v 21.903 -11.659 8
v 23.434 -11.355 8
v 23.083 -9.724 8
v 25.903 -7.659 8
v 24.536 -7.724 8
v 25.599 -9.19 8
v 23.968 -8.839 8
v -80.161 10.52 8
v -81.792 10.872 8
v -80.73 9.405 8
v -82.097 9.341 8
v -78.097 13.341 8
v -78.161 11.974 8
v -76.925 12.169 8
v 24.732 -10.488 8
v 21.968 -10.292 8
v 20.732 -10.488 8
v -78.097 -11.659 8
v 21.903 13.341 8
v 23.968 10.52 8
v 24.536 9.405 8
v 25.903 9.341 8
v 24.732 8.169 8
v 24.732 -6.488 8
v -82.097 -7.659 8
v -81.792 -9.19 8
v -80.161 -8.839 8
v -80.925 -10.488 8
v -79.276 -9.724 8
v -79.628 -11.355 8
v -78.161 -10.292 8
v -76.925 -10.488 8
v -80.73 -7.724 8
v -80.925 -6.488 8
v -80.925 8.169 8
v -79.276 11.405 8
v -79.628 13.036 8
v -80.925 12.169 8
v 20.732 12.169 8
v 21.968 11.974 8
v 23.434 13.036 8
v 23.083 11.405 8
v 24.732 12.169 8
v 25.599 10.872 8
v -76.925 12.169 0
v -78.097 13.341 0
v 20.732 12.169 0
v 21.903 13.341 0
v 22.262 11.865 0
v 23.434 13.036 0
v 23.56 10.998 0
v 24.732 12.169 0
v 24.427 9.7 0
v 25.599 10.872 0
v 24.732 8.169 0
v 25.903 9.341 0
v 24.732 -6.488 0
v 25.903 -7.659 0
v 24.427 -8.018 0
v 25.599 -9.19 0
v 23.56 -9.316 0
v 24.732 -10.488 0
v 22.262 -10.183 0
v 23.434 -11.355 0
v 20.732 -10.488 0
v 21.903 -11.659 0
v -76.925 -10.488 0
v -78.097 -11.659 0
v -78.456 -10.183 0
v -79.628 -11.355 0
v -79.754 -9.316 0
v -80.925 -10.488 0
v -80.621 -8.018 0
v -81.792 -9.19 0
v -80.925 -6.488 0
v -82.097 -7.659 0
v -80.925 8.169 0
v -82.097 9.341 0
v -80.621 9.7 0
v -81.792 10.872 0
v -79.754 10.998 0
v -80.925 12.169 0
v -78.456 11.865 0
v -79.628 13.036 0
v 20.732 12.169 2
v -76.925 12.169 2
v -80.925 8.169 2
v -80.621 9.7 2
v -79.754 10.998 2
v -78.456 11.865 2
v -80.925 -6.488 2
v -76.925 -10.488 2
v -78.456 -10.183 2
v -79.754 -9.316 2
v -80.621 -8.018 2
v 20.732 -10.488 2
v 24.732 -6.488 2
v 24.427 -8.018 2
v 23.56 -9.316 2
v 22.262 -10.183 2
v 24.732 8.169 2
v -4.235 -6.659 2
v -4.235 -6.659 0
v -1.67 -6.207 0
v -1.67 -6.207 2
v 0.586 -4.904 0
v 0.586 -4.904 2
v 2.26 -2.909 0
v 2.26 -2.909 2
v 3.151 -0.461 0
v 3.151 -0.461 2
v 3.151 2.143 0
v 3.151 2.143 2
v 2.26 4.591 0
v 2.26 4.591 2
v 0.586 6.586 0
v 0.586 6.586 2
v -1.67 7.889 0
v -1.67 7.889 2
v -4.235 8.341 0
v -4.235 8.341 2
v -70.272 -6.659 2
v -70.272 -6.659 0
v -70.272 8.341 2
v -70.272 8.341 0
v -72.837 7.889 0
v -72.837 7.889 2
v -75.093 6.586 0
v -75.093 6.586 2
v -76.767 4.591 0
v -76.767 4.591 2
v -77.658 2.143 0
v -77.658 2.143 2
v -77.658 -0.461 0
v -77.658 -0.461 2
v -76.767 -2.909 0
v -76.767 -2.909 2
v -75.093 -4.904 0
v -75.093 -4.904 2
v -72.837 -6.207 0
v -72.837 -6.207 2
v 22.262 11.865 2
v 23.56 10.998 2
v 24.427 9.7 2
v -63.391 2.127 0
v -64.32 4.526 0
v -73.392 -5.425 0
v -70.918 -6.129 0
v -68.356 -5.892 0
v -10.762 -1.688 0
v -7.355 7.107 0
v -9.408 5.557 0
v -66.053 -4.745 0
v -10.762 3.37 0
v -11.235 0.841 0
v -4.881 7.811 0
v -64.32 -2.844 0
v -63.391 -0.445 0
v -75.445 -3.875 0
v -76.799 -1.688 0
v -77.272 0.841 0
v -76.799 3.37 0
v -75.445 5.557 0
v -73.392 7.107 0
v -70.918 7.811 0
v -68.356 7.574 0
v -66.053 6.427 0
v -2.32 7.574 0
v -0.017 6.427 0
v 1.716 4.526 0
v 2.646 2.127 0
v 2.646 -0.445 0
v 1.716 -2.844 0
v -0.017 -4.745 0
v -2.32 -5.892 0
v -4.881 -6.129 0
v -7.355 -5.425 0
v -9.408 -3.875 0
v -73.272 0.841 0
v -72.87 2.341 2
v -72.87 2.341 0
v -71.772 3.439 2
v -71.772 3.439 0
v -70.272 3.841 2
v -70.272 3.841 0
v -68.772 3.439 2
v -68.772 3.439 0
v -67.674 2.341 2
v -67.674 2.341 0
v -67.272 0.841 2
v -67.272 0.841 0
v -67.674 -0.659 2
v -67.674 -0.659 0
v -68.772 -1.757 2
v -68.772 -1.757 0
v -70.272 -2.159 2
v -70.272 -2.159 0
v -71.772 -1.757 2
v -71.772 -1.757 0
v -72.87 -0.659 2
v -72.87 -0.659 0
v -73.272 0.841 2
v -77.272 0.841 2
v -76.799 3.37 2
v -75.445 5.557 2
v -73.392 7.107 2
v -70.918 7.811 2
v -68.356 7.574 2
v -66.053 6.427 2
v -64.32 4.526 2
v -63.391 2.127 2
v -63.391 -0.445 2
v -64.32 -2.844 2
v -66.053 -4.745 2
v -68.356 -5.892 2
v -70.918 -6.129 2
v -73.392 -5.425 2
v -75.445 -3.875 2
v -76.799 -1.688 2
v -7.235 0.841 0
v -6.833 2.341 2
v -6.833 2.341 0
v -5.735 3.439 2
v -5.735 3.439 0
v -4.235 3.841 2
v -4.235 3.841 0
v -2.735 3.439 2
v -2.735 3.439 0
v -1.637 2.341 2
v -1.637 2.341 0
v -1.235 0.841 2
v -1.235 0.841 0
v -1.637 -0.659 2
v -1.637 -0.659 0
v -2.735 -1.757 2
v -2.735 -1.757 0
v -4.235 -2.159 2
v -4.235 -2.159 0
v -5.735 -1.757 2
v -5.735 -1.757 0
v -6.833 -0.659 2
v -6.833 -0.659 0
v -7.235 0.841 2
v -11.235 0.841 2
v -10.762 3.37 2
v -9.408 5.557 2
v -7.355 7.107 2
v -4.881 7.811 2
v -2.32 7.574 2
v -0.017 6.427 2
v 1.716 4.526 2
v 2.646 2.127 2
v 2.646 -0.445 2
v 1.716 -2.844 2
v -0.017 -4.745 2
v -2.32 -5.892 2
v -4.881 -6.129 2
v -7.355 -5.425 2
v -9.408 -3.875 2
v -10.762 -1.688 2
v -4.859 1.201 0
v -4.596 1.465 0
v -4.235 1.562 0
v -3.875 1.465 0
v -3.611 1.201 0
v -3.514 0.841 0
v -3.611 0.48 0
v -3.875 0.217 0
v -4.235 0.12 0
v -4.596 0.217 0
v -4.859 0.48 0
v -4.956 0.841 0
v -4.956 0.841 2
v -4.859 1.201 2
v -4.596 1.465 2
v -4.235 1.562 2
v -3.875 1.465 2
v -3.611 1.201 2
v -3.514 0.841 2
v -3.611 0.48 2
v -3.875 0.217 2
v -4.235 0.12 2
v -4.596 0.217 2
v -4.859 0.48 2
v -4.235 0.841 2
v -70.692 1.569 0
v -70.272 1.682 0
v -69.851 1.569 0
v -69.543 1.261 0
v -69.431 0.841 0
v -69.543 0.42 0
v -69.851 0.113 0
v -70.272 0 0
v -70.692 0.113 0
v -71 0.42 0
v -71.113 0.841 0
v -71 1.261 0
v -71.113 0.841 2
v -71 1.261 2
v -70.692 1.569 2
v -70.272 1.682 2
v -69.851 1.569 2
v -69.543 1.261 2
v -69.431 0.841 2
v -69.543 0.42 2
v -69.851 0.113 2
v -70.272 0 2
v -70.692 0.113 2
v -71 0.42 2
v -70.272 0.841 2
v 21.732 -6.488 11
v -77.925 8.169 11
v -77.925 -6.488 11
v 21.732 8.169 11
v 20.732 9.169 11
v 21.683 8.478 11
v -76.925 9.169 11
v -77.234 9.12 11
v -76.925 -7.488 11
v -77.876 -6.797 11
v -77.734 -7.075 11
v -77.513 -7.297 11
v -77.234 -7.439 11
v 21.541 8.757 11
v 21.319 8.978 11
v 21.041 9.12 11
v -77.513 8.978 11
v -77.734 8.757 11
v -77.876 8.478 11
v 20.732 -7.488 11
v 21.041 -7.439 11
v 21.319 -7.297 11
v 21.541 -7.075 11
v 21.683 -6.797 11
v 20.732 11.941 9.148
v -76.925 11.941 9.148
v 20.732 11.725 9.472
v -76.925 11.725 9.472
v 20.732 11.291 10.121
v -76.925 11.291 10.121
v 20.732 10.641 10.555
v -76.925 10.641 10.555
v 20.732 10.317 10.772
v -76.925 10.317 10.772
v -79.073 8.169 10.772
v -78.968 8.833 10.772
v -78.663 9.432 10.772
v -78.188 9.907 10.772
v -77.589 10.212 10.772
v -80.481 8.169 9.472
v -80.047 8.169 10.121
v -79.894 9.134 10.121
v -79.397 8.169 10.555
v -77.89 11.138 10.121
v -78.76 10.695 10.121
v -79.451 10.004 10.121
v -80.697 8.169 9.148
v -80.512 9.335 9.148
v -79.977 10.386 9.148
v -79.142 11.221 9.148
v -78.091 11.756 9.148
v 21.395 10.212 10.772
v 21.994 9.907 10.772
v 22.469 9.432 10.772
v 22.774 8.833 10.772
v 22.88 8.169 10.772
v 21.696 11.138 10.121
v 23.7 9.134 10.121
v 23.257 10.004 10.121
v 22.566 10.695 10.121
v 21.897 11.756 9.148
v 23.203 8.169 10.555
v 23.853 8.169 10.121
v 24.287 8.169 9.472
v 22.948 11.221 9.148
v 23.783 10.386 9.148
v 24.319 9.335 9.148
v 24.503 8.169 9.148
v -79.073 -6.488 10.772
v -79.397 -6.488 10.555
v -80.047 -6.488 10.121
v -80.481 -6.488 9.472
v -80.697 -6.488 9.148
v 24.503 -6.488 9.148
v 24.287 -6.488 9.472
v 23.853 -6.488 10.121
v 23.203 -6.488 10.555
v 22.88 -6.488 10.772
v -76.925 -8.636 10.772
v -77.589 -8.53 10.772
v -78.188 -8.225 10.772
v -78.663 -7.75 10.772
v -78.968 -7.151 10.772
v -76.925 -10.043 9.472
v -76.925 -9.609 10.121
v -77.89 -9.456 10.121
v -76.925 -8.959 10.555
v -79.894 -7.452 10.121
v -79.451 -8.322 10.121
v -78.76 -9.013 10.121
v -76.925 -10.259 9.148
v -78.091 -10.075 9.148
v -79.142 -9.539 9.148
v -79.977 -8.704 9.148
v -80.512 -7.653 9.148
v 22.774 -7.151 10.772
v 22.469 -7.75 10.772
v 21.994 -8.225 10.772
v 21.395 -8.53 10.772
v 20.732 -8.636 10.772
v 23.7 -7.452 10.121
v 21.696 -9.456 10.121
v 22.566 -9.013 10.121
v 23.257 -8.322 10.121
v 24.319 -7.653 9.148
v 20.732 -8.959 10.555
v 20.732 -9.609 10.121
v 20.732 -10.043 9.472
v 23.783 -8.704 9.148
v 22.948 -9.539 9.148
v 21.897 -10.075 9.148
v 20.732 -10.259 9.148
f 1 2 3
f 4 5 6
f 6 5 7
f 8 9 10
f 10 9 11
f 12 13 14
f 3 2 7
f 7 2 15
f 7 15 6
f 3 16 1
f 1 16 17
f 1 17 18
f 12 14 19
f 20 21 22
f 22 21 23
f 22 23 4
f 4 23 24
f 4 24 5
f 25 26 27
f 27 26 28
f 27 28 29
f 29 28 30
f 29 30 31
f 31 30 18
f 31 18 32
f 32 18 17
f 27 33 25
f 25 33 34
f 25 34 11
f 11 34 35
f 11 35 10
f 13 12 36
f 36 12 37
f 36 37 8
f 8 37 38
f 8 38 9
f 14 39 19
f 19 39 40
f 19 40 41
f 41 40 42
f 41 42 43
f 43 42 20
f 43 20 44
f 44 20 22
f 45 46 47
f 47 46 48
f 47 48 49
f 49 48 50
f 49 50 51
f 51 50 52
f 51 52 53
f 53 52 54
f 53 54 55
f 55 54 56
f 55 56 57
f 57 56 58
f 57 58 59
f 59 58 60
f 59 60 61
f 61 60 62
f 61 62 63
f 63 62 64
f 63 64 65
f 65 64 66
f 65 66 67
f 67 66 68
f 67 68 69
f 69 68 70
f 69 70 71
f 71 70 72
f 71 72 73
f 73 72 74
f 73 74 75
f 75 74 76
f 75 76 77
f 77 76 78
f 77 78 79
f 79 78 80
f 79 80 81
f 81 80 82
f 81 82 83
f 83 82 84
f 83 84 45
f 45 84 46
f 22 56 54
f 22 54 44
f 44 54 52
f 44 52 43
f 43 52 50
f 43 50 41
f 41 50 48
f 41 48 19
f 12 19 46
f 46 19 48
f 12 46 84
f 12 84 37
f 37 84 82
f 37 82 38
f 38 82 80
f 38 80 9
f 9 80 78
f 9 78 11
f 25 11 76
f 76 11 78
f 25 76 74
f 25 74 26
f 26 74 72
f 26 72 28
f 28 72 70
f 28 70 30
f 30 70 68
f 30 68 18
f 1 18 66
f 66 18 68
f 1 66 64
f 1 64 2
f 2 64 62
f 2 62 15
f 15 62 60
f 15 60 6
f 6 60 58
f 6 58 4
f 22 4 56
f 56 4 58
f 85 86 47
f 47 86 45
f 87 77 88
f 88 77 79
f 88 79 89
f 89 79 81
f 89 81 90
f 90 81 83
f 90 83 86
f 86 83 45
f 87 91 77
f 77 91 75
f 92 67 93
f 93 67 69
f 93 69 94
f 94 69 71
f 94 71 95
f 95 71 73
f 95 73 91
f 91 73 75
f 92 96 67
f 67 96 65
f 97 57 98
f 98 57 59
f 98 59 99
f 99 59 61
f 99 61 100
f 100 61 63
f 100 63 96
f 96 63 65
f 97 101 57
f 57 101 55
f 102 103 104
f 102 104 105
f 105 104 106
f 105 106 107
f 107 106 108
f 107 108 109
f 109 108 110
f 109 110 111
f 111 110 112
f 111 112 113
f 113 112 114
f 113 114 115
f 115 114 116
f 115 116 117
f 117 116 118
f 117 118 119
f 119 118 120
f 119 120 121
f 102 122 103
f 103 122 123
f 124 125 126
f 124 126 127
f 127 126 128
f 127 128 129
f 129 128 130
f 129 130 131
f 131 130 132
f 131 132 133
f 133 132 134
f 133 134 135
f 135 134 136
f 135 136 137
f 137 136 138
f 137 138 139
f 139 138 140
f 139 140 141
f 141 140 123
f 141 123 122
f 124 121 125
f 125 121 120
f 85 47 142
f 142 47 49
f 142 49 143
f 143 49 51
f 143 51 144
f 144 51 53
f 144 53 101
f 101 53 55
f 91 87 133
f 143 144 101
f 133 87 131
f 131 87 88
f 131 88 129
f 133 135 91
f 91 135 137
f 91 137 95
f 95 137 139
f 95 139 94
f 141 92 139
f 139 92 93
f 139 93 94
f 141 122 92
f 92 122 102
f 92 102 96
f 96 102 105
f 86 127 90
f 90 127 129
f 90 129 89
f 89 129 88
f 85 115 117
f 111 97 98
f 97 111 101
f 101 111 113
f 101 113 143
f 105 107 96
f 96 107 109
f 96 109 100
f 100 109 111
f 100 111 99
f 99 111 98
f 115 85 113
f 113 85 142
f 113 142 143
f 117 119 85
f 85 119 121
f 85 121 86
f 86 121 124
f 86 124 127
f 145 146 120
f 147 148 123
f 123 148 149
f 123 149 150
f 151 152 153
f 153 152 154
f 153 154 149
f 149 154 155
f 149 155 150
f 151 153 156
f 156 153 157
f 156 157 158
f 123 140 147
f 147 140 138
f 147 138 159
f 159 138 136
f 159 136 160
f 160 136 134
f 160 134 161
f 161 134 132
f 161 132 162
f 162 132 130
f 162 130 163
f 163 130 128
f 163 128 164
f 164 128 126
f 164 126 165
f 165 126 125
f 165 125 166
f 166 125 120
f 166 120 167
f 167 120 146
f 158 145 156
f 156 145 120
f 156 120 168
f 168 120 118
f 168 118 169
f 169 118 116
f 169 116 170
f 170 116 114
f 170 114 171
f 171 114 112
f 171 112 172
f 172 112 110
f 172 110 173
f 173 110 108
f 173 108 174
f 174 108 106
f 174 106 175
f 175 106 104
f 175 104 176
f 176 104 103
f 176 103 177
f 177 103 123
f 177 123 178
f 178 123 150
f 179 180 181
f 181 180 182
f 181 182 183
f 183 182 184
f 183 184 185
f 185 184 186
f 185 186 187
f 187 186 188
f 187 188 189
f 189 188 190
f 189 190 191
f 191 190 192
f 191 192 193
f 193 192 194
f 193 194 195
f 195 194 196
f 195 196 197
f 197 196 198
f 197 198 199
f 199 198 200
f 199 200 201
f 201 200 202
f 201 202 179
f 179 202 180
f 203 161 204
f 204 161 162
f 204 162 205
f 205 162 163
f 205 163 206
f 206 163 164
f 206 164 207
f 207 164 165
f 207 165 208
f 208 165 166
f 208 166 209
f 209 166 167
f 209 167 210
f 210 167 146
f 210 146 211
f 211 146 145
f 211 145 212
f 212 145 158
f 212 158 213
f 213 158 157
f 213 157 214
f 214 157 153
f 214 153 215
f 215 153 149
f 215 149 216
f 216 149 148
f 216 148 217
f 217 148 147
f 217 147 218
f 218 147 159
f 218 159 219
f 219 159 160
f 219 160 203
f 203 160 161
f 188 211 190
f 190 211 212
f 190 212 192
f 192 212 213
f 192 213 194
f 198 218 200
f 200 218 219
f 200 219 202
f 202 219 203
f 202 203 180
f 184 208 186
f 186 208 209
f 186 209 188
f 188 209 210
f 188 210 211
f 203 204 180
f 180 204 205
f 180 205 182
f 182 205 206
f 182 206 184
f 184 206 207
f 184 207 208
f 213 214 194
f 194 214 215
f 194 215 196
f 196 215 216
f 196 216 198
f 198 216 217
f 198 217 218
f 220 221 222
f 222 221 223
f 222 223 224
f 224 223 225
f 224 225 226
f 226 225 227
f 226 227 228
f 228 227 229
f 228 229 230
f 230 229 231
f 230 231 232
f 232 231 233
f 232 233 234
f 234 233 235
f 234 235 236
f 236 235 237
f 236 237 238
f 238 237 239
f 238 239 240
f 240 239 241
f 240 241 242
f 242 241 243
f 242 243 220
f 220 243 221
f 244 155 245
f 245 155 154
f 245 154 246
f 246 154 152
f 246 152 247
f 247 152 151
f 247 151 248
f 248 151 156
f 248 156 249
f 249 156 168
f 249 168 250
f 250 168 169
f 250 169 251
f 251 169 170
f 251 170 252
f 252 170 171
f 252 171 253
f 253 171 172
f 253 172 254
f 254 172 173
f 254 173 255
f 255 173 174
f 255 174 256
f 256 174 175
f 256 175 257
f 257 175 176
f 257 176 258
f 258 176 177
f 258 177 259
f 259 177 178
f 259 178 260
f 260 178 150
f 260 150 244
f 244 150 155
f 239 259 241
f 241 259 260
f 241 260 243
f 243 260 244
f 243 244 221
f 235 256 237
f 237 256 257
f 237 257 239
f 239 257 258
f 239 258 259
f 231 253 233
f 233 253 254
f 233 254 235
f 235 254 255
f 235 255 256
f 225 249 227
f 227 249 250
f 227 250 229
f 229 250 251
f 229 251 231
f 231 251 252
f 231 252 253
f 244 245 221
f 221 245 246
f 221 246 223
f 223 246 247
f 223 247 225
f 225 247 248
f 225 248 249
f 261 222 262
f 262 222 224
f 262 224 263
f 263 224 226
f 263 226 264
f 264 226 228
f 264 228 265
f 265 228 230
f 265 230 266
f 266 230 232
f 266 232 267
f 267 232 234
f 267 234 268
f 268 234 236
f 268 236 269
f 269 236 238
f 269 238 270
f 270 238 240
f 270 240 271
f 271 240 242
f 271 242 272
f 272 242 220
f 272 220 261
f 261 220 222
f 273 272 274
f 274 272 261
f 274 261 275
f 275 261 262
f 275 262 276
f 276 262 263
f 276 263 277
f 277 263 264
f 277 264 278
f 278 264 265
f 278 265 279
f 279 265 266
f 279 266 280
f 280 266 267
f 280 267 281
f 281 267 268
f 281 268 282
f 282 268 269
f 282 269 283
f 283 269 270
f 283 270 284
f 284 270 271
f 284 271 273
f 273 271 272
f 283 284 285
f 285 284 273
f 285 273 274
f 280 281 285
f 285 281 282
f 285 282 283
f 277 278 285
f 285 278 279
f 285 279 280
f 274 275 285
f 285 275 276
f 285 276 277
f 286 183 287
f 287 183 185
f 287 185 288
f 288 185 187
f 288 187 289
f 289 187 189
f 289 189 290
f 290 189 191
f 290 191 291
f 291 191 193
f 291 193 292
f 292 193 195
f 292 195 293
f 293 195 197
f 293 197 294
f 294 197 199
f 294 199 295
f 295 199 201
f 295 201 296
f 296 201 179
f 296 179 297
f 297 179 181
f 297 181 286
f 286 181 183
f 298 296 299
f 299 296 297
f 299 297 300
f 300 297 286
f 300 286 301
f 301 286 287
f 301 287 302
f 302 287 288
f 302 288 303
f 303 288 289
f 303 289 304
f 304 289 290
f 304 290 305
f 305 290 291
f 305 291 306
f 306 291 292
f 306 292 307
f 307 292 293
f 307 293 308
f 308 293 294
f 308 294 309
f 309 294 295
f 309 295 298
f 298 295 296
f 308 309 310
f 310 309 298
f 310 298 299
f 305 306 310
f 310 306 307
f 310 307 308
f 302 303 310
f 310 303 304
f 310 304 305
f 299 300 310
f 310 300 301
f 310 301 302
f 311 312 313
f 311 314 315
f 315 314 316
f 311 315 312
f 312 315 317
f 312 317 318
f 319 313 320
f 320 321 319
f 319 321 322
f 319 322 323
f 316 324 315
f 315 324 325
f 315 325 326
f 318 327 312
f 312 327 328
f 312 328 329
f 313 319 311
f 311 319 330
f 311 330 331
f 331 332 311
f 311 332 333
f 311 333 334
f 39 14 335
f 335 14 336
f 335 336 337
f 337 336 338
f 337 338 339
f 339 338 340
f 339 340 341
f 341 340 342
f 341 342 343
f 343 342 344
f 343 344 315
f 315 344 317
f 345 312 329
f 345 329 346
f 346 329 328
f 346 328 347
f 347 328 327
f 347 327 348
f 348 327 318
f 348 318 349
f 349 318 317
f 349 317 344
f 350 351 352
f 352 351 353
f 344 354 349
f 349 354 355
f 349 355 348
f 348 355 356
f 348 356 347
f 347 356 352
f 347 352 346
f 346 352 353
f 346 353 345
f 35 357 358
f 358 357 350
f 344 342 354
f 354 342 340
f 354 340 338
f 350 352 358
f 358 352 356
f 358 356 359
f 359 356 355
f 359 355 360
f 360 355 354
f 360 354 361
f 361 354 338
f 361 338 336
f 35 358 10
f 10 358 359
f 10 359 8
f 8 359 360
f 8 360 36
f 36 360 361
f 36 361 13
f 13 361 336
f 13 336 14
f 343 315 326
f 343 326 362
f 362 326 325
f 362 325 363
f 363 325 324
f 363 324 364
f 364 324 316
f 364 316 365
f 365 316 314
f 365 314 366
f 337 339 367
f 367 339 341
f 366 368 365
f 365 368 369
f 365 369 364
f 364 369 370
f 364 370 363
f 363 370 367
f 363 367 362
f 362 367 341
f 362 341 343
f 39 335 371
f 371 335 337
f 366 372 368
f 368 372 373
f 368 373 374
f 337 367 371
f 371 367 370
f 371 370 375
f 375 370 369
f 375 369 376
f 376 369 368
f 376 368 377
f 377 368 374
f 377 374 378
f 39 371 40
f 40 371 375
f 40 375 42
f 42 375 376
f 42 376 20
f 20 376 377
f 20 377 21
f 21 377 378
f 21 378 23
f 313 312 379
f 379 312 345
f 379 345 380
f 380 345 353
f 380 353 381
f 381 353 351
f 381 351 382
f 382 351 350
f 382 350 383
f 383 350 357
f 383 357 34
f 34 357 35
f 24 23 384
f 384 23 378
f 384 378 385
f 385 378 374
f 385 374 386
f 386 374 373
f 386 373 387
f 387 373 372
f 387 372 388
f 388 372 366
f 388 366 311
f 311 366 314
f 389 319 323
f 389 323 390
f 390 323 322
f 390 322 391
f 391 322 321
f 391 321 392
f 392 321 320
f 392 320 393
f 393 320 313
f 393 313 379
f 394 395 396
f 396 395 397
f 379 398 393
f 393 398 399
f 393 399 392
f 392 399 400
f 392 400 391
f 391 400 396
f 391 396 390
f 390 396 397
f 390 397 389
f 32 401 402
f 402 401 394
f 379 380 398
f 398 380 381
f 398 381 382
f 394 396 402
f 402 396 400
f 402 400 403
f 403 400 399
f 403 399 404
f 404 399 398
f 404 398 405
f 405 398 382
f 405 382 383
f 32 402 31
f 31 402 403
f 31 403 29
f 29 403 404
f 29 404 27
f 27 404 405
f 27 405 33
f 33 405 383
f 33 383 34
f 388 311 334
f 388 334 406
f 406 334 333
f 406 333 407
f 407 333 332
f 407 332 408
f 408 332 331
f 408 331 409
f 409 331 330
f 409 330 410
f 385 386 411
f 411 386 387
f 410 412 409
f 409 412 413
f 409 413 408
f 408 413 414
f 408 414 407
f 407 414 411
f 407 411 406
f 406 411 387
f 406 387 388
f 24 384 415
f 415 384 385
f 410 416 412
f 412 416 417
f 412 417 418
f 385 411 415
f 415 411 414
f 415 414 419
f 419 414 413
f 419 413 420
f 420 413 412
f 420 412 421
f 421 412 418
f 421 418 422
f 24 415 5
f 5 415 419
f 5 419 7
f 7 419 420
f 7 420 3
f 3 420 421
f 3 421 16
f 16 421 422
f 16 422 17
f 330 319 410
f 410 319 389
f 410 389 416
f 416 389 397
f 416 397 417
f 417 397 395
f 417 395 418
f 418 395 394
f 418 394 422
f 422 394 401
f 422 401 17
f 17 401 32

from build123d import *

# Parameters (mm, degrees)
EXTRUDE_1_DEPTH     = 8
SKETCH_2_R          = 7
SKETCH_2_R_2        = 3
SKETCH_2_R_3        = 0.840909091
SKETCH_2_R_4        = 0.720923158
CUT_EXTRUDE_1_DEPTH = 2
EXTRUDE_2_DEPTH     = 3
FILLET_1_R          = 3


with BuildPart() as part:
    # 스케치1 → 보스-돌출1 (new body)
    with BuildSketch(Plane.XY):
        with BuildLine():
            Line((-78.096917245, 13.340909091), (21.903082755, 13.340909091))
            ThreePointArc((21.903082755, 13.340909091), (24.73150988, 12.169336216), (25.903082755, 9.340909091))
            Line((25.903082755, 9.340909091), (25.903082755, -7.659090909))
            ThreePointArc((25.903082755, -7.659090909), (24.73150988, -10.487518034), (21.903082755, -11.659090909))
            Line((21.903082755, -11.659090909), (-78.096917245, -11.659090909))
            ThreePointArc((-78.096917245, -11.659090909), (-80.92534437, -10.487518034), (-82.096917245, -7.659090909))
            Line((-82.096917245, -7.659090909), (-82.096917245, 9.340909091))
            ThreePointArc((-82.096917245, 9.340909091), (-80.92534437, 12.169336216), (-78.096917245, 13.340909091))
        make_face()
    extrude(amount=EXTRUDE_1_DEPTH)

    # 스케치2 → 컷-돌출1 (cut)
    # profile 1 of 5: a face of its own
    with BuildSketch(Plane(origin=(0, 0, 0), x_dir=(-1, 0, 0), z_dir=(0, 0, -1))):
        with BuildLine():
            Line((-20.73150988, 12.169336216), (76.92534437, 12.169336216))
            ThreePointArc((76.92534437, 12.169336216), (79.753771494, 10.99776334), (80.92534437, 8.169336216))
            Line((80.92534437, 8.169336216), (80.92534437, -6.487518034))
            ThreePointArc((80.92534437, -6.487518034), (79.753771494, -9.315945159), (76.92534437, -10.487518034))
            Line((76.92534437, -10.487518034), (-20.73150988, -10.487518034))
            ThreePointArc((-20.73150988, -10.487518034), (-23.559937005, -9.315945159), (-24.73150988, -6.487518034))
            Line((-24.73150988, -6.487518034), (-24.73150988, 8.169336216))
            ThreePointArc((-24.73150988, 8.169336216), (-23.559937005, 10.99776334), (-20.73150988, 12.169336216))
        make_face()
        with BuildLine():
            ThreePointArc((4.235161258, 8.340909091), (-3.264838742, 0.840909091), (4.235161258, -6.659090909))
            Line((4.235161258, -6.659090909), (70.271722555, -6.659090909))
            ThreePointArc((70.271722555, -6.659090909), (77.771722555, 0.840909091), (70.271722555, 8.340909091))
            Line((70.271722555, 8.340909091), (4.235161258, 8.340909091))
        make_face(mode=Mode.SUBTRACT)
    # profile 2 of 5: a face of its own
    with BuildSketch(Plane(origin=(0, 0, 0), x_dir=(-1, 0, 0), z_dir=(0, 0, -1))):
        with Locations((4.235161258, 0.840909091)):
            Circle(SKETCH_2_R)
        with Locations((4.235161258, 0.840909091)):
            Circle(SKETCH_2_R_2, mode=Mode.SUBTRACT)
    # profile 3 of 5: a face of its own
    with BuildSketch(Plane(origin=(0, 0, 0), x_dir=(-1, 0, 0), z_dir=(0, 0, -1))):
        with Locations((70.271722555, 0.840909091)):
            Circle(SKETCH_2_R)
        with Locations((70.271722555, 0.840909091)):
            Circle(SKETCH_2_R_2, mode=Mode.SUBTRACT)
    # profile 4 of 5: a face of its own
    with BuildSketch(Plane(origin=(0, 0, 0), x_dir=(-1, 0, 0), z_dir=(0, 0, -1))):
        with Locations((70.271722555, 0.840909091)):
            Circle(SKETCH_2_R_3)
    # profile 5 of 5: a face of its own
    with BuildSketch(Plane(origin=(0, 0, 0), x_dir=(-1, 0, 0), z_dir=(0, 0, -1))):
        with Locations((4.235161258, 0.840909091)):
            Circle(SKETCH_2_R_4)
    extrude(amount=-CUT_EXTRUDE_1_DEPTH, mode=Mode.SUBTRACT)

    # 스케치3 → 보스-돌출2 (add)
    with BuildSketch(Plane.XY.offset(8)):
        with BuildLine():
            Line((-76.92534437, 12.169336216), (20.73150988, 12.169336216))
            ThreePointArc((20.73150988, 12.169336216), (23.559937005, 10.99776334), (24.73150988, 8.169336216))
            Line((24.73150988, 8.169336216), (24.73150988, -6.487518034))
            ThreePointArc((24.73150988, -6.487518034), (23.559937005, -9.315945159), (20.73150988, -10.487518034))
            Line((20.73150988, -10.487518034), (-76.92534437, -10.487518034))
            ThreePointArc((-76.92534437, -10.487518034), (-79.753771494, -9.315945159), (-80.92534437, -6.487518034))
            Line((-80.92534437, -6.487518034), (-80.92534437, 8.169336216))
            ThreePointArc((-80.92534437, 8.169336216), (-79.753771494, 10.99776334), (-76.92534437, 12.169336216))
        make_face()
    extrude(amount=EXTRUDE_2_DEPTH)

    # 필렛1
    fillet_1_edges = [part.edges().sort_by_distance(p)[0] for p in [
        (-28.096917245, -10.487518034, 11),
        (-79.753771494, -9.315945159, 11),
        (-80.92534437, 0.840909091, 11),
        (-79.753771494, 10.99776334, 11),
        (-28.096917245, 12.169336216, 11),
        (23.559937005, 10.99776334, 11),
        (24.73150988, 0.840909091, 11),
        (23.559937005, -9.315945159, 11),
    ]]
    fillet(fillet_1_edges, radius=FILLET_1_R - 0.0001)  # a hair under: the kernel refuses the full size


solid = part.part
